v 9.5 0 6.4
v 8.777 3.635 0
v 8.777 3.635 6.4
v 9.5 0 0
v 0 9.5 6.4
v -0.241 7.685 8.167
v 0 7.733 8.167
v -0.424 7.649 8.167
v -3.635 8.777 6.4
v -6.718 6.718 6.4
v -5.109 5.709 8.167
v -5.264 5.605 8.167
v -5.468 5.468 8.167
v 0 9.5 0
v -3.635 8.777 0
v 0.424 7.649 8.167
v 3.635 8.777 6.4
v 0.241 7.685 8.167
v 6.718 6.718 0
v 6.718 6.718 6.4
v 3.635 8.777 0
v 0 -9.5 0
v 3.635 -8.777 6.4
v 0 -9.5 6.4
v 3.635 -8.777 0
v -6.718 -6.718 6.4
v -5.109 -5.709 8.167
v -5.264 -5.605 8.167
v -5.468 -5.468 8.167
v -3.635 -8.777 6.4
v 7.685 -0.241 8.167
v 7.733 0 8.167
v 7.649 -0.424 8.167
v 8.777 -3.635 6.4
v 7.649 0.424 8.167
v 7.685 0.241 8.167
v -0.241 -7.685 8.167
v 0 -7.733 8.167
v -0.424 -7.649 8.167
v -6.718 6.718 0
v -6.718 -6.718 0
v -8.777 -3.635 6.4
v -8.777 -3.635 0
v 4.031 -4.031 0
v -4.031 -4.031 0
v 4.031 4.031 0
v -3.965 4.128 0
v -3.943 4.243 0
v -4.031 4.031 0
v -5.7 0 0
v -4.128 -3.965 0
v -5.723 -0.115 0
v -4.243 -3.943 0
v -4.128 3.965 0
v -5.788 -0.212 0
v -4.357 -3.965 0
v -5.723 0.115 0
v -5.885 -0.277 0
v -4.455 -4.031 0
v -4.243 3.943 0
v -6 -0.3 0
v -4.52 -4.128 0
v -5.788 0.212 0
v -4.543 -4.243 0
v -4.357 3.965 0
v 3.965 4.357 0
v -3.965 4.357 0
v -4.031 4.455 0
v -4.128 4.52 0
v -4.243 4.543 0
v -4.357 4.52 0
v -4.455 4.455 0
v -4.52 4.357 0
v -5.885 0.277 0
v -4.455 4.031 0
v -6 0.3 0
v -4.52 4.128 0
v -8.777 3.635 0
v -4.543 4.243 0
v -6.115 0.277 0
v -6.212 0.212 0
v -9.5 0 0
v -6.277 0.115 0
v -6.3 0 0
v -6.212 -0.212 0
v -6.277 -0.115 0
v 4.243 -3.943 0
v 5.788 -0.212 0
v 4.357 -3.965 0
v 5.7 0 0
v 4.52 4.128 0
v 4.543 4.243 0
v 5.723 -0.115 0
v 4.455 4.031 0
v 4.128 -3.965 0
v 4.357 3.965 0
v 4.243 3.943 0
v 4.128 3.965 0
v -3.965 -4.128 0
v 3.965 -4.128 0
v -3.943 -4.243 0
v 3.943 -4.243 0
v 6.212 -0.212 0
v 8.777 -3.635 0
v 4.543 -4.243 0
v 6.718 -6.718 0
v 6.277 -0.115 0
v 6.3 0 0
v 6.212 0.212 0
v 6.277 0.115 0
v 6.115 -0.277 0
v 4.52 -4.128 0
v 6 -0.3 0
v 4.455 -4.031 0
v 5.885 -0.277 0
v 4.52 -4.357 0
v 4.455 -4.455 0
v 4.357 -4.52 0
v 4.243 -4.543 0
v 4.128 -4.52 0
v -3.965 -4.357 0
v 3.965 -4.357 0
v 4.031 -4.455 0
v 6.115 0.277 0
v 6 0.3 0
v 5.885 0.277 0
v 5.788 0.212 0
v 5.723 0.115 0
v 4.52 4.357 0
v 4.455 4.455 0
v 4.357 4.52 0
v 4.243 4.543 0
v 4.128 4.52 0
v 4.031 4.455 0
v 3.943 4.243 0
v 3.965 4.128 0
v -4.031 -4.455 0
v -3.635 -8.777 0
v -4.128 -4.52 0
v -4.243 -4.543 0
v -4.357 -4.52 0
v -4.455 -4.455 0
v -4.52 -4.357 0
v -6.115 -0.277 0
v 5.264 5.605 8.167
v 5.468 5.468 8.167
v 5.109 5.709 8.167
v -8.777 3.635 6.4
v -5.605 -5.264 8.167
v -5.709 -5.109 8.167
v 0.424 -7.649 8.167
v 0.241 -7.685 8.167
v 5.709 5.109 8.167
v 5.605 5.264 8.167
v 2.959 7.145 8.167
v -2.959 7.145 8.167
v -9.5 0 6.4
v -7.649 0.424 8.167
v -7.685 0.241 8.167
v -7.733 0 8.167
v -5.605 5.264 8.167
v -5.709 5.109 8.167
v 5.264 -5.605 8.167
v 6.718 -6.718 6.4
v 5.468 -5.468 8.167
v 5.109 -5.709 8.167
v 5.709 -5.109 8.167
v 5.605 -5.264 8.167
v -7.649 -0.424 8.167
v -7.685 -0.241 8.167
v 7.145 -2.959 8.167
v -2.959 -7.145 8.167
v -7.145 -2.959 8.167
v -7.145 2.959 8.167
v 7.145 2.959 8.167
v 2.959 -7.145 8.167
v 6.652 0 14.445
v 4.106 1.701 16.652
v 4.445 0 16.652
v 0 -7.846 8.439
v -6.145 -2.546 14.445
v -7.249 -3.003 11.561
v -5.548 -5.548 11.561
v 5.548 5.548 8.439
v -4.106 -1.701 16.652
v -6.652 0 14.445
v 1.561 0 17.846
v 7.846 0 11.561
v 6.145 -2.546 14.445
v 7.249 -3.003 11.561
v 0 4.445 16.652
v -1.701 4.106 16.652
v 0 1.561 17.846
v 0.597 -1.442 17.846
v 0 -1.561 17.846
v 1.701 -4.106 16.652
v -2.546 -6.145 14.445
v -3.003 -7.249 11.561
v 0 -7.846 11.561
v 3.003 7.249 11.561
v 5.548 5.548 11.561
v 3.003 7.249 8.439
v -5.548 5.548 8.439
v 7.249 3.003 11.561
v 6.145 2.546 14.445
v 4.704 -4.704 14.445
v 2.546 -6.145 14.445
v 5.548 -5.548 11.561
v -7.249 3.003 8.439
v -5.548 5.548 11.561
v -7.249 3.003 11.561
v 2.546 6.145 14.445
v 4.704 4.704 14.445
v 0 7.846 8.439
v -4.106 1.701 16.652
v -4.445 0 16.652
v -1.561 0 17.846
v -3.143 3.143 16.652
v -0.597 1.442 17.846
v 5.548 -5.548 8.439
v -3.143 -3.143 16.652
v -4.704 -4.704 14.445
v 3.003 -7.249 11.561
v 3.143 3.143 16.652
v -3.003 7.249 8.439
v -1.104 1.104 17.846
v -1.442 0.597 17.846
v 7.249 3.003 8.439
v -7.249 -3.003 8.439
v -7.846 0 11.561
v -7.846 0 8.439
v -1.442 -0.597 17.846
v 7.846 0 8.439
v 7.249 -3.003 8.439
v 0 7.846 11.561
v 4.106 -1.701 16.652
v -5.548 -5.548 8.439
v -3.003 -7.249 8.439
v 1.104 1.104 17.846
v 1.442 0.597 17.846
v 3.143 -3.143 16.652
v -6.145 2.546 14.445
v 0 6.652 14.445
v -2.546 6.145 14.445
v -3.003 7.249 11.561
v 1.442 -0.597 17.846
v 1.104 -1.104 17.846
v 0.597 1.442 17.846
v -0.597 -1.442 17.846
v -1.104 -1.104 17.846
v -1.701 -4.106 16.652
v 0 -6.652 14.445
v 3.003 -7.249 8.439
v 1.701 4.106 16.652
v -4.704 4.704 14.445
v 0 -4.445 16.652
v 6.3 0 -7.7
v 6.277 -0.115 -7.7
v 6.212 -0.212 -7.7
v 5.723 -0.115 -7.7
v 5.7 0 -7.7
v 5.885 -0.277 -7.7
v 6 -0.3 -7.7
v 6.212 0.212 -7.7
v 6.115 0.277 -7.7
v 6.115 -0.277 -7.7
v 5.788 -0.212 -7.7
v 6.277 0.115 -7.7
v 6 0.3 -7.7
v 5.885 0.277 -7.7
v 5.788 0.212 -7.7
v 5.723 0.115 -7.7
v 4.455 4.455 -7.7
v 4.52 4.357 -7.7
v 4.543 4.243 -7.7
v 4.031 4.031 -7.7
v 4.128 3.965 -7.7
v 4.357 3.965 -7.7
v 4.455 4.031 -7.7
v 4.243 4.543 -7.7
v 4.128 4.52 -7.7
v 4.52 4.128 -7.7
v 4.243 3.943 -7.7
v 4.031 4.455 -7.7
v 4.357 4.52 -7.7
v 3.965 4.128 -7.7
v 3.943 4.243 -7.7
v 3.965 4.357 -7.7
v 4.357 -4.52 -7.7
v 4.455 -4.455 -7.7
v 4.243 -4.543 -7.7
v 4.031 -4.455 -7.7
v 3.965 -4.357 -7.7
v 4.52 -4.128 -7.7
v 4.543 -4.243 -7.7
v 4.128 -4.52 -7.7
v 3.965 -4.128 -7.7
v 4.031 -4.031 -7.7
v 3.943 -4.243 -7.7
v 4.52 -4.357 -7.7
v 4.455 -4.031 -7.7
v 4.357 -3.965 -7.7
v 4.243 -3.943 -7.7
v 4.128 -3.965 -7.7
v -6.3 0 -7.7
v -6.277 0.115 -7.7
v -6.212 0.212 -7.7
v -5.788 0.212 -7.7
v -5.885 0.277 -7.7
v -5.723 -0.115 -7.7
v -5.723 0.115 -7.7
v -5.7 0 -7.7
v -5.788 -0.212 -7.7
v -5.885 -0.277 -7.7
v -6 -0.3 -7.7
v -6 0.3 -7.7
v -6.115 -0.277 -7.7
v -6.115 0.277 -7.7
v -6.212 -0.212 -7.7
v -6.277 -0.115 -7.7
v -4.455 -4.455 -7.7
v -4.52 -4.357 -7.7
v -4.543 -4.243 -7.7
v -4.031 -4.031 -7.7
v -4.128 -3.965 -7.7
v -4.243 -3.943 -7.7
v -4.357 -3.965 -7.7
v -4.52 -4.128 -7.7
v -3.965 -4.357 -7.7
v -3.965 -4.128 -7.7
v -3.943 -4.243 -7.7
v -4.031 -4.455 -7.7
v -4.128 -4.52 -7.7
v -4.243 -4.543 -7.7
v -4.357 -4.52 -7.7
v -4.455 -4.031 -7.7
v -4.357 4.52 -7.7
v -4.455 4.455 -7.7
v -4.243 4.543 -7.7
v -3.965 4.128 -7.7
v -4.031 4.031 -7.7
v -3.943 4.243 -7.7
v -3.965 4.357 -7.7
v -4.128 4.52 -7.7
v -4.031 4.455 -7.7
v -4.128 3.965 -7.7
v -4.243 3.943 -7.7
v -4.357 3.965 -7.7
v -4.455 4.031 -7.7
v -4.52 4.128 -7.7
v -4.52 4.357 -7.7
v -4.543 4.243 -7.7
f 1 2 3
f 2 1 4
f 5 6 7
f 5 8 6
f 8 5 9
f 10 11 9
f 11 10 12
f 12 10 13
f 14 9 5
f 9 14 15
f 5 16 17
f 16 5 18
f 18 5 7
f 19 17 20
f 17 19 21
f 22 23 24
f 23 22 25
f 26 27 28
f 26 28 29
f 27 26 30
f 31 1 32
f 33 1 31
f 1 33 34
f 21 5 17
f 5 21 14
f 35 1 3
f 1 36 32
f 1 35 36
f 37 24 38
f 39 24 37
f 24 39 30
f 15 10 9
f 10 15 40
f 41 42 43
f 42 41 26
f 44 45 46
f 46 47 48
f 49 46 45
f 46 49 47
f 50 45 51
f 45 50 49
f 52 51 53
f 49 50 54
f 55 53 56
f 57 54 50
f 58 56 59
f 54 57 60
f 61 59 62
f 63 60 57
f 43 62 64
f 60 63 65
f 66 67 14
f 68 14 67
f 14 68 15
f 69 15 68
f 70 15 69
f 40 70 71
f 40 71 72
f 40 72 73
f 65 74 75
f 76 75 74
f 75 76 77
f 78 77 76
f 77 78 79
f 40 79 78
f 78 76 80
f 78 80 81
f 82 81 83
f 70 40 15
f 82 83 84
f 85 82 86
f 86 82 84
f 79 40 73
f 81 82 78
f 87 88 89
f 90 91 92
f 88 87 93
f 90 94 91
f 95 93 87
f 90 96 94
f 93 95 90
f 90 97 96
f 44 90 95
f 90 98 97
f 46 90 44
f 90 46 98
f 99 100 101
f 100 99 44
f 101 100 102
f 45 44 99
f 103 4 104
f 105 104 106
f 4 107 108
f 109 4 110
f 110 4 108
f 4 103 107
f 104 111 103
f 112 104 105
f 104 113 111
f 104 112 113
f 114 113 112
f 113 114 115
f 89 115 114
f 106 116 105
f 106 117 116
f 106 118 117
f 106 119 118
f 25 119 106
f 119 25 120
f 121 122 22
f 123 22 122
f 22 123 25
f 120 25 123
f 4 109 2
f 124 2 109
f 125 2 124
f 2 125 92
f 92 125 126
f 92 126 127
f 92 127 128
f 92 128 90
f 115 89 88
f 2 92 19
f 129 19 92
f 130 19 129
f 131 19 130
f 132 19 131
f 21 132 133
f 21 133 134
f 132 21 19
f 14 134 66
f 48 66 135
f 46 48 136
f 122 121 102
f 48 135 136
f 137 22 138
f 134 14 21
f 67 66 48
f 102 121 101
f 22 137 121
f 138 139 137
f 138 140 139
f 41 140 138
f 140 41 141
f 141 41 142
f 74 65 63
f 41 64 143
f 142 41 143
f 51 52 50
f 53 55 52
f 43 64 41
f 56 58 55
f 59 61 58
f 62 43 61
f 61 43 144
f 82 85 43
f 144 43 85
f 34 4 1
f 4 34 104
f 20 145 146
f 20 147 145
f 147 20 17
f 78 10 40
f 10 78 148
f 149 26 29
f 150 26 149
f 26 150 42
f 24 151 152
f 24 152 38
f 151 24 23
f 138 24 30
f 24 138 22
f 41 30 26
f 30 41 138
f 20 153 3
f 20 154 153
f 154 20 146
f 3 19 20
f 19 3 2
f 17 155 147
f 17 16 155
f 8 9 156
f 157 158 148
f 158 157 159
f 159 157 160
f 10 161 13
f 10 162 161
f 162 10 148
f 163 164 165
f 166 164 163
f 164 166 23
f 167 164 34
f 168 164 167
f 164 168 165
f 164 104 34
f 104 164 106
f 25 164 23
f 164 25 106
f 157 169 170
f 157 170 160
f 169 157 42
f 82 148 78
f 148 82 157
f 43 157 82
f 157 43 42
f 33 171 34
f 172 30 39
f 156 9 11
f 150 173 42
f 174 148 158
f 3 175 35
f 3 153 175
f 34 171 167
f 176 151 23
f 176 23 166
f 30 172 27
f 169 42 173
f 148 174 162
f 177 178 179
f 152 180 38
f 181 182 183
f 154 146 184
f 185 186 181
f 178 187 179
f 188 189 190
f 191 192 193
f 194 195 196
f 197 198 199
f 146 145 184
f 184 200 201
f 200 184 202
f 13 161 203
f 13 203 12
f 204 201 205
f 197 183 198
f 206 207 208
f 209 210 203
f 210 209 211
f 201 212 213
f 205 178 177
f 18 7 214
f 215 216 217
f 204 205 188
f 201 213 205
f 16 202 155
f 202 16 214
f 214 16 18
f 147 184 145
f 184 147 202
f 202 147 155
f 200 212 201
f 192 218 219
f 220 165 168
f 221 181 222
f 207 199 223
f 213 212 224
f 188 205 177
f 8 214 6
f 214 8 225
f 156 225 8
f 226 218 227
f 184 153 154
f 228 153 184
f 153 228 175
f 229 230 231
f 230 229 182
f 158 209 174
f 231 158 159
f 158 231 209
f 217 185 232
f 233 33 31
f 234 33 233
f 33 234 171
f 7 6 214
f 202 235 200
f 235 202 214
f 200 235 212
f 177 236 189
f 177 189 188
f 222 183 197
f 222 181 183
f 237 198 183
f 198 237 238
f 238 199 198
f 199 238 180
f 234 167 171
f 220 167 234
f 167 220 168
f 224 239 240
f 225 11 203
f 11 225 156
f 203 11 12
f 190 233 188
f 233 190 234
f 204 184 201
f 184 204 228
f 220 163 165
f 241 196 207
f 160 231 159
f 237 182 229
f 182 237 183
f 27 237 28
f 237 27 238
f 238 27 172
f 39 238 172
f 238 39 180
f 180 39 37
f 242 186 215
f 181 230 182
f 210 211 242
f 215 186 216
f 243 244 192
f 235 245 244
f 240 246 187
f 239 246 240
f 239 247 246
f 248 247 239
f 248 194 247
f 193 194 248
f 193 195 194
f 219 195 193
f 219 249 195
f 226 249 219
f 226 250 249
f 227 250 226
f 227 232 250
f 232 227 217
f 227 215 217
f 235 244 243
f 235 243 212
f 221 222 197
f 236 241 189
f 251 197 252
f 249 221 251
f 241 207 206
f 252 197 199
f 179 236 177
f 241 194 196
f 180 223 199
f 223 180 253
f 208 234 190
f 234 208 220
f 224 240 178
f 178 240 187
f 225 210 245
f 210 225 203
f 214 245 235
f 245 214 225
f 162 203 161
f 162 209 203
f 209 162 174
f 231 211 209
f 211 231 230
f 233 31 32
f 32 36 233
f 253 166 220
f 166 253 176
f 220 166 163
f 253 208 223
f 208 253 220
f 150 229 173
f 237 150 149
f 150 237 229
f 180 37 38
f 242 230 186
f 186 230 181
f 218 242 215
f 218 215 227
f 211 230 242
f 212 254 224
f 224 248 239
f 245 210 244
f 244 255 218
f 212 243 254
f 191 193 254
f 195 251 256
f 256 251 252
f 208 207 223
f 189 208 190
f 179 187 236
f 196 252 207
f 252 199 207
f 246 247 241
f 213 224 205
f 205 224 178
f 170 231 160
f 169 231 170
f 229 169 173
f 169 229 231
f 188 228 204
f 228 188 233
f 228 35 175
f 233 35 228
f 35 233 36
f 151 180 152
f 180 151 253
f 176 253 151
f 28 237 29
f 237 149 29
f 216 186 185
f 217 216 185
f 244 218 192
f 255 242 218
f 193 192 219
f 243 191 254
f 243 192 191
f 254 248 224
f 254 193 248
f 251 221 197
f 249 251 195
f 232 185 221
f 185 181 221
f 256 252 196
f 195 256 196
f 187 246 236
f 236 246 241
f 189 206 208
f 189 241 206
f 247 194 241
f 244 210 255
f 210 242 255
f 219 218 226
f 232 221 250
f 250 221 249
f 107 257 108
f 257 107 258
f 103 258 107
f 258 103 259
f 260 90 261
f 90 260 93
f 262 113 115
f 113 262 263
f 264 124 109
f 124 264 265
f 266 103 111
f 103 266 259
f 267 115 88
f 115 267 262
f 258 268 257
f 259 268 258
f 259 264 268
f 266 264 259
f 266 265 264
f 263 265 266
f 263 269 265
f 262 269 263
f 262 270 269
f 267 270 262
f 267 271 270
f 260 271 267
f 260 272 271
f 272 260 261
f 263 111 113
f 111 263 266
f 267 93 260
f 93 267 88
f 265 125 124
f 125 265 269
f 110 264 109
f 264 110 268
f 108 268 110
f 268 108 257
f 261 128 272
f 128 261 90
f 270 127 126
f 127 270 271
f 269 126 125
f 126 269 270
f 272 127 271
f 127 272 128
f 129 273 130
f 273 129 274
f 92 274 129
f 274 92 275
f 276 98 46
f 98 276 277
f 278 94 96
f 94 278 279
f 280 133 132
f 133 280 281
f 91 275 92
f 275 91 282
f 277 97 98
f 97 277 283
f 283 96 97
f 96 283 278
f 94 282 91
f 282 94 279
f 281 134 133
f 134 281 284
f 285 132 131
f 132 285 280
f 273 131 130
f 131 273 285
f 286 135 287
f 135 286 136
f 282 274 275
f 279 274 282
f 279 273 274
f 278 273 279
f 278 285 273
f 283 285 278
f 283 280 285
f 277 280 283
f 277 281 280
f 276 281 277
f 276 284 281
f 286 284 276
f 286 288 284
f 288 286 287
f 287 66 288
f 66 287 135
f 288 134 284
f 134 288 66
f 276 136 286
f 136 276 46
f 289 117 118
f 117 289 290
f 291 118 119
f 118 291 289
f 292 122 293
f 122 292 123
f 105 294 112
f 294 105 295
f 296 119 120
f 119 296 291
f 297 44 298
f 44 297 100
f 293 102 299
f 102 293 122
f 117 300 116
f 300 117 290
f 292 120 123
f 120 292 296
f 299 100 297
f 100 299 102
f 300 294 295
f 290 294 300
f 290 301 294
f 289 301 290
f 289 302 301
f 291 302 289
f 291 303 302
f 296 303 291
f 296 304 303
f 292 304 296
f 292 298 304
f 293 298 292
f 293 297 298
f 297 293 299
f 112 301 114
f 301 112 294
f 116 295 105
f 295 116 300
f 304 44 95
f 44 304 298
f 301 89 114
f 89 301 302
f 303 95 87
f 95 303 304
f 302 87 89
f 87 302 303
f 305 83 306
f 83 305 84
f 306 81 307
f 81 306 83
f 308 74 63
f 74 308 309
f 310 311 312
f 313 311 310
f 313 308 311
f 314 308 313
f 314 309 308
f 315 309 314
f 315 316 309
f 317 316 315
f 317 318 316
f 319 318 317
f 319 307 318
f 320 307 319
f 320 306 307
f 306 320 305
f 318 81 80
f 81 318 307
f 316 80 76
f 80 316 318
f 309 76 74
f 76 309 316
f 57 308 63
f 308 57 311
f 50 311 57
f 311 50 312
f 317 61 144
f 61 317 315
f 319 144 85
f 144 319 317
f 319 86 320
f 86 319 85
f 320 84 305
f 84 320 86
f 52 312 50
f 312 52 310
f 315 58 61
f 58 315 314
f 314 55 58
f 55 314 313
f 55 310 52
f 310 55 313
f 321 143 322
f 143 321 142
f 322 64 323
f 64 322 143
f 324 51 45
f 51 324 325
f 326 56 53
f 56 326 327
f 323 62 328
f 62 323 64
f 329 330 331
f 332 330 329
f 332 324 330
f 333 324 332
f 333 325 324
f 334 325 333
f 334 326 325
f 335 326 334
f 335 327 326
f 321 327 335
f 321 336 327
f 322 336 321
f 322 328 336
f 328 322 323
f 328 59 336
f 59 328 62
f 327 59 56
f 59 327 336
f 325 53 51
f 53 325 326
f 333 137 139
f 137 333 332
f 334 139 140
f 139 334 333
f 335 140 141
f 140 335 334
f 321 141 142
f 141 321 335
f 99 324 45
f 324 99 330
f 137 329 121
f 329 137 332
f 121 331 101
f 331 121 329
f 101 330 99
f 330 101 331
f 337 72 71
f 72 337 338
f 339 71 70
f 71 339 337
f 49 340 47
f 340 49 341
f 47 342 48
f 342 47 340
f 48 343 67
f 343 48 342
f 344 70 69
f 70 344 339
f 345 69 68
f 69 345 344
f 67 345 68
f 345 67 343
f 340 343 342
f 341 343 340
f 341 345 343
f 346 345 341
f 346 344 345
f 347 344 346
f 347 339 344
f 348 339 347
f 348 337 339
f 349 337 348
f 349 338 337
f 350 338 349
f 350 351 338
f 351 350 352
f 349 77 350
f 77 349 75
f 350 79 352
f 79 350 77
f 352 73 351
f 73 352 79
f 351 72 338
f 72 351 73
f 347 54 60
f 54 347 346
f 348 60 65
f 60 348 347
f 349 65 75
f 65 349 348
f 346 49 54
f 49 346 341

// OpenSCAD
// A CNG-Methane sensor MQ-4 ordered from https://www.sparkfun.com/products/9404
// Part of http://vor.space by Futurice

$fn = 16;

pin_length = 7.7;

// Uncomment one or the other depending on the use case shape desired
methane_sensor();
//methane_sensor_space();

module center() {
    hull() {
        cylinder(h = 6.4, r = 19/2);
        cylinder(h = 8.4, r = 15/2);
    }
}

module top() {
    translate([0, 0, 18 - 16/2])
        sphere(r=16/2);
}

module pin(theta = 0) {
    color("black") rotate([180, 0, theta]) {
        translate([6, 0, 0])
            cylinder(r=.3, h=pin_length);
    }
}

module pin_space(radius = 7) {
    rotate([180, 0, 0]) {
        cylinder(r=radius, h=pin_length + 1);
    }
}

module methane_sensor() {
    color("grey") center();
    color("violet") top();
    pin(theta = 0);
    pin(theta = 45);
    pin(theta = -45);
    pin(theta = 180);
    pin(theta = 180 + 45);
    pin(theta = 180 - 45);
}

module methane_sensor_space() {
    color("grey") center();
    color("violet") top();
    color("black") pin_space();
}
